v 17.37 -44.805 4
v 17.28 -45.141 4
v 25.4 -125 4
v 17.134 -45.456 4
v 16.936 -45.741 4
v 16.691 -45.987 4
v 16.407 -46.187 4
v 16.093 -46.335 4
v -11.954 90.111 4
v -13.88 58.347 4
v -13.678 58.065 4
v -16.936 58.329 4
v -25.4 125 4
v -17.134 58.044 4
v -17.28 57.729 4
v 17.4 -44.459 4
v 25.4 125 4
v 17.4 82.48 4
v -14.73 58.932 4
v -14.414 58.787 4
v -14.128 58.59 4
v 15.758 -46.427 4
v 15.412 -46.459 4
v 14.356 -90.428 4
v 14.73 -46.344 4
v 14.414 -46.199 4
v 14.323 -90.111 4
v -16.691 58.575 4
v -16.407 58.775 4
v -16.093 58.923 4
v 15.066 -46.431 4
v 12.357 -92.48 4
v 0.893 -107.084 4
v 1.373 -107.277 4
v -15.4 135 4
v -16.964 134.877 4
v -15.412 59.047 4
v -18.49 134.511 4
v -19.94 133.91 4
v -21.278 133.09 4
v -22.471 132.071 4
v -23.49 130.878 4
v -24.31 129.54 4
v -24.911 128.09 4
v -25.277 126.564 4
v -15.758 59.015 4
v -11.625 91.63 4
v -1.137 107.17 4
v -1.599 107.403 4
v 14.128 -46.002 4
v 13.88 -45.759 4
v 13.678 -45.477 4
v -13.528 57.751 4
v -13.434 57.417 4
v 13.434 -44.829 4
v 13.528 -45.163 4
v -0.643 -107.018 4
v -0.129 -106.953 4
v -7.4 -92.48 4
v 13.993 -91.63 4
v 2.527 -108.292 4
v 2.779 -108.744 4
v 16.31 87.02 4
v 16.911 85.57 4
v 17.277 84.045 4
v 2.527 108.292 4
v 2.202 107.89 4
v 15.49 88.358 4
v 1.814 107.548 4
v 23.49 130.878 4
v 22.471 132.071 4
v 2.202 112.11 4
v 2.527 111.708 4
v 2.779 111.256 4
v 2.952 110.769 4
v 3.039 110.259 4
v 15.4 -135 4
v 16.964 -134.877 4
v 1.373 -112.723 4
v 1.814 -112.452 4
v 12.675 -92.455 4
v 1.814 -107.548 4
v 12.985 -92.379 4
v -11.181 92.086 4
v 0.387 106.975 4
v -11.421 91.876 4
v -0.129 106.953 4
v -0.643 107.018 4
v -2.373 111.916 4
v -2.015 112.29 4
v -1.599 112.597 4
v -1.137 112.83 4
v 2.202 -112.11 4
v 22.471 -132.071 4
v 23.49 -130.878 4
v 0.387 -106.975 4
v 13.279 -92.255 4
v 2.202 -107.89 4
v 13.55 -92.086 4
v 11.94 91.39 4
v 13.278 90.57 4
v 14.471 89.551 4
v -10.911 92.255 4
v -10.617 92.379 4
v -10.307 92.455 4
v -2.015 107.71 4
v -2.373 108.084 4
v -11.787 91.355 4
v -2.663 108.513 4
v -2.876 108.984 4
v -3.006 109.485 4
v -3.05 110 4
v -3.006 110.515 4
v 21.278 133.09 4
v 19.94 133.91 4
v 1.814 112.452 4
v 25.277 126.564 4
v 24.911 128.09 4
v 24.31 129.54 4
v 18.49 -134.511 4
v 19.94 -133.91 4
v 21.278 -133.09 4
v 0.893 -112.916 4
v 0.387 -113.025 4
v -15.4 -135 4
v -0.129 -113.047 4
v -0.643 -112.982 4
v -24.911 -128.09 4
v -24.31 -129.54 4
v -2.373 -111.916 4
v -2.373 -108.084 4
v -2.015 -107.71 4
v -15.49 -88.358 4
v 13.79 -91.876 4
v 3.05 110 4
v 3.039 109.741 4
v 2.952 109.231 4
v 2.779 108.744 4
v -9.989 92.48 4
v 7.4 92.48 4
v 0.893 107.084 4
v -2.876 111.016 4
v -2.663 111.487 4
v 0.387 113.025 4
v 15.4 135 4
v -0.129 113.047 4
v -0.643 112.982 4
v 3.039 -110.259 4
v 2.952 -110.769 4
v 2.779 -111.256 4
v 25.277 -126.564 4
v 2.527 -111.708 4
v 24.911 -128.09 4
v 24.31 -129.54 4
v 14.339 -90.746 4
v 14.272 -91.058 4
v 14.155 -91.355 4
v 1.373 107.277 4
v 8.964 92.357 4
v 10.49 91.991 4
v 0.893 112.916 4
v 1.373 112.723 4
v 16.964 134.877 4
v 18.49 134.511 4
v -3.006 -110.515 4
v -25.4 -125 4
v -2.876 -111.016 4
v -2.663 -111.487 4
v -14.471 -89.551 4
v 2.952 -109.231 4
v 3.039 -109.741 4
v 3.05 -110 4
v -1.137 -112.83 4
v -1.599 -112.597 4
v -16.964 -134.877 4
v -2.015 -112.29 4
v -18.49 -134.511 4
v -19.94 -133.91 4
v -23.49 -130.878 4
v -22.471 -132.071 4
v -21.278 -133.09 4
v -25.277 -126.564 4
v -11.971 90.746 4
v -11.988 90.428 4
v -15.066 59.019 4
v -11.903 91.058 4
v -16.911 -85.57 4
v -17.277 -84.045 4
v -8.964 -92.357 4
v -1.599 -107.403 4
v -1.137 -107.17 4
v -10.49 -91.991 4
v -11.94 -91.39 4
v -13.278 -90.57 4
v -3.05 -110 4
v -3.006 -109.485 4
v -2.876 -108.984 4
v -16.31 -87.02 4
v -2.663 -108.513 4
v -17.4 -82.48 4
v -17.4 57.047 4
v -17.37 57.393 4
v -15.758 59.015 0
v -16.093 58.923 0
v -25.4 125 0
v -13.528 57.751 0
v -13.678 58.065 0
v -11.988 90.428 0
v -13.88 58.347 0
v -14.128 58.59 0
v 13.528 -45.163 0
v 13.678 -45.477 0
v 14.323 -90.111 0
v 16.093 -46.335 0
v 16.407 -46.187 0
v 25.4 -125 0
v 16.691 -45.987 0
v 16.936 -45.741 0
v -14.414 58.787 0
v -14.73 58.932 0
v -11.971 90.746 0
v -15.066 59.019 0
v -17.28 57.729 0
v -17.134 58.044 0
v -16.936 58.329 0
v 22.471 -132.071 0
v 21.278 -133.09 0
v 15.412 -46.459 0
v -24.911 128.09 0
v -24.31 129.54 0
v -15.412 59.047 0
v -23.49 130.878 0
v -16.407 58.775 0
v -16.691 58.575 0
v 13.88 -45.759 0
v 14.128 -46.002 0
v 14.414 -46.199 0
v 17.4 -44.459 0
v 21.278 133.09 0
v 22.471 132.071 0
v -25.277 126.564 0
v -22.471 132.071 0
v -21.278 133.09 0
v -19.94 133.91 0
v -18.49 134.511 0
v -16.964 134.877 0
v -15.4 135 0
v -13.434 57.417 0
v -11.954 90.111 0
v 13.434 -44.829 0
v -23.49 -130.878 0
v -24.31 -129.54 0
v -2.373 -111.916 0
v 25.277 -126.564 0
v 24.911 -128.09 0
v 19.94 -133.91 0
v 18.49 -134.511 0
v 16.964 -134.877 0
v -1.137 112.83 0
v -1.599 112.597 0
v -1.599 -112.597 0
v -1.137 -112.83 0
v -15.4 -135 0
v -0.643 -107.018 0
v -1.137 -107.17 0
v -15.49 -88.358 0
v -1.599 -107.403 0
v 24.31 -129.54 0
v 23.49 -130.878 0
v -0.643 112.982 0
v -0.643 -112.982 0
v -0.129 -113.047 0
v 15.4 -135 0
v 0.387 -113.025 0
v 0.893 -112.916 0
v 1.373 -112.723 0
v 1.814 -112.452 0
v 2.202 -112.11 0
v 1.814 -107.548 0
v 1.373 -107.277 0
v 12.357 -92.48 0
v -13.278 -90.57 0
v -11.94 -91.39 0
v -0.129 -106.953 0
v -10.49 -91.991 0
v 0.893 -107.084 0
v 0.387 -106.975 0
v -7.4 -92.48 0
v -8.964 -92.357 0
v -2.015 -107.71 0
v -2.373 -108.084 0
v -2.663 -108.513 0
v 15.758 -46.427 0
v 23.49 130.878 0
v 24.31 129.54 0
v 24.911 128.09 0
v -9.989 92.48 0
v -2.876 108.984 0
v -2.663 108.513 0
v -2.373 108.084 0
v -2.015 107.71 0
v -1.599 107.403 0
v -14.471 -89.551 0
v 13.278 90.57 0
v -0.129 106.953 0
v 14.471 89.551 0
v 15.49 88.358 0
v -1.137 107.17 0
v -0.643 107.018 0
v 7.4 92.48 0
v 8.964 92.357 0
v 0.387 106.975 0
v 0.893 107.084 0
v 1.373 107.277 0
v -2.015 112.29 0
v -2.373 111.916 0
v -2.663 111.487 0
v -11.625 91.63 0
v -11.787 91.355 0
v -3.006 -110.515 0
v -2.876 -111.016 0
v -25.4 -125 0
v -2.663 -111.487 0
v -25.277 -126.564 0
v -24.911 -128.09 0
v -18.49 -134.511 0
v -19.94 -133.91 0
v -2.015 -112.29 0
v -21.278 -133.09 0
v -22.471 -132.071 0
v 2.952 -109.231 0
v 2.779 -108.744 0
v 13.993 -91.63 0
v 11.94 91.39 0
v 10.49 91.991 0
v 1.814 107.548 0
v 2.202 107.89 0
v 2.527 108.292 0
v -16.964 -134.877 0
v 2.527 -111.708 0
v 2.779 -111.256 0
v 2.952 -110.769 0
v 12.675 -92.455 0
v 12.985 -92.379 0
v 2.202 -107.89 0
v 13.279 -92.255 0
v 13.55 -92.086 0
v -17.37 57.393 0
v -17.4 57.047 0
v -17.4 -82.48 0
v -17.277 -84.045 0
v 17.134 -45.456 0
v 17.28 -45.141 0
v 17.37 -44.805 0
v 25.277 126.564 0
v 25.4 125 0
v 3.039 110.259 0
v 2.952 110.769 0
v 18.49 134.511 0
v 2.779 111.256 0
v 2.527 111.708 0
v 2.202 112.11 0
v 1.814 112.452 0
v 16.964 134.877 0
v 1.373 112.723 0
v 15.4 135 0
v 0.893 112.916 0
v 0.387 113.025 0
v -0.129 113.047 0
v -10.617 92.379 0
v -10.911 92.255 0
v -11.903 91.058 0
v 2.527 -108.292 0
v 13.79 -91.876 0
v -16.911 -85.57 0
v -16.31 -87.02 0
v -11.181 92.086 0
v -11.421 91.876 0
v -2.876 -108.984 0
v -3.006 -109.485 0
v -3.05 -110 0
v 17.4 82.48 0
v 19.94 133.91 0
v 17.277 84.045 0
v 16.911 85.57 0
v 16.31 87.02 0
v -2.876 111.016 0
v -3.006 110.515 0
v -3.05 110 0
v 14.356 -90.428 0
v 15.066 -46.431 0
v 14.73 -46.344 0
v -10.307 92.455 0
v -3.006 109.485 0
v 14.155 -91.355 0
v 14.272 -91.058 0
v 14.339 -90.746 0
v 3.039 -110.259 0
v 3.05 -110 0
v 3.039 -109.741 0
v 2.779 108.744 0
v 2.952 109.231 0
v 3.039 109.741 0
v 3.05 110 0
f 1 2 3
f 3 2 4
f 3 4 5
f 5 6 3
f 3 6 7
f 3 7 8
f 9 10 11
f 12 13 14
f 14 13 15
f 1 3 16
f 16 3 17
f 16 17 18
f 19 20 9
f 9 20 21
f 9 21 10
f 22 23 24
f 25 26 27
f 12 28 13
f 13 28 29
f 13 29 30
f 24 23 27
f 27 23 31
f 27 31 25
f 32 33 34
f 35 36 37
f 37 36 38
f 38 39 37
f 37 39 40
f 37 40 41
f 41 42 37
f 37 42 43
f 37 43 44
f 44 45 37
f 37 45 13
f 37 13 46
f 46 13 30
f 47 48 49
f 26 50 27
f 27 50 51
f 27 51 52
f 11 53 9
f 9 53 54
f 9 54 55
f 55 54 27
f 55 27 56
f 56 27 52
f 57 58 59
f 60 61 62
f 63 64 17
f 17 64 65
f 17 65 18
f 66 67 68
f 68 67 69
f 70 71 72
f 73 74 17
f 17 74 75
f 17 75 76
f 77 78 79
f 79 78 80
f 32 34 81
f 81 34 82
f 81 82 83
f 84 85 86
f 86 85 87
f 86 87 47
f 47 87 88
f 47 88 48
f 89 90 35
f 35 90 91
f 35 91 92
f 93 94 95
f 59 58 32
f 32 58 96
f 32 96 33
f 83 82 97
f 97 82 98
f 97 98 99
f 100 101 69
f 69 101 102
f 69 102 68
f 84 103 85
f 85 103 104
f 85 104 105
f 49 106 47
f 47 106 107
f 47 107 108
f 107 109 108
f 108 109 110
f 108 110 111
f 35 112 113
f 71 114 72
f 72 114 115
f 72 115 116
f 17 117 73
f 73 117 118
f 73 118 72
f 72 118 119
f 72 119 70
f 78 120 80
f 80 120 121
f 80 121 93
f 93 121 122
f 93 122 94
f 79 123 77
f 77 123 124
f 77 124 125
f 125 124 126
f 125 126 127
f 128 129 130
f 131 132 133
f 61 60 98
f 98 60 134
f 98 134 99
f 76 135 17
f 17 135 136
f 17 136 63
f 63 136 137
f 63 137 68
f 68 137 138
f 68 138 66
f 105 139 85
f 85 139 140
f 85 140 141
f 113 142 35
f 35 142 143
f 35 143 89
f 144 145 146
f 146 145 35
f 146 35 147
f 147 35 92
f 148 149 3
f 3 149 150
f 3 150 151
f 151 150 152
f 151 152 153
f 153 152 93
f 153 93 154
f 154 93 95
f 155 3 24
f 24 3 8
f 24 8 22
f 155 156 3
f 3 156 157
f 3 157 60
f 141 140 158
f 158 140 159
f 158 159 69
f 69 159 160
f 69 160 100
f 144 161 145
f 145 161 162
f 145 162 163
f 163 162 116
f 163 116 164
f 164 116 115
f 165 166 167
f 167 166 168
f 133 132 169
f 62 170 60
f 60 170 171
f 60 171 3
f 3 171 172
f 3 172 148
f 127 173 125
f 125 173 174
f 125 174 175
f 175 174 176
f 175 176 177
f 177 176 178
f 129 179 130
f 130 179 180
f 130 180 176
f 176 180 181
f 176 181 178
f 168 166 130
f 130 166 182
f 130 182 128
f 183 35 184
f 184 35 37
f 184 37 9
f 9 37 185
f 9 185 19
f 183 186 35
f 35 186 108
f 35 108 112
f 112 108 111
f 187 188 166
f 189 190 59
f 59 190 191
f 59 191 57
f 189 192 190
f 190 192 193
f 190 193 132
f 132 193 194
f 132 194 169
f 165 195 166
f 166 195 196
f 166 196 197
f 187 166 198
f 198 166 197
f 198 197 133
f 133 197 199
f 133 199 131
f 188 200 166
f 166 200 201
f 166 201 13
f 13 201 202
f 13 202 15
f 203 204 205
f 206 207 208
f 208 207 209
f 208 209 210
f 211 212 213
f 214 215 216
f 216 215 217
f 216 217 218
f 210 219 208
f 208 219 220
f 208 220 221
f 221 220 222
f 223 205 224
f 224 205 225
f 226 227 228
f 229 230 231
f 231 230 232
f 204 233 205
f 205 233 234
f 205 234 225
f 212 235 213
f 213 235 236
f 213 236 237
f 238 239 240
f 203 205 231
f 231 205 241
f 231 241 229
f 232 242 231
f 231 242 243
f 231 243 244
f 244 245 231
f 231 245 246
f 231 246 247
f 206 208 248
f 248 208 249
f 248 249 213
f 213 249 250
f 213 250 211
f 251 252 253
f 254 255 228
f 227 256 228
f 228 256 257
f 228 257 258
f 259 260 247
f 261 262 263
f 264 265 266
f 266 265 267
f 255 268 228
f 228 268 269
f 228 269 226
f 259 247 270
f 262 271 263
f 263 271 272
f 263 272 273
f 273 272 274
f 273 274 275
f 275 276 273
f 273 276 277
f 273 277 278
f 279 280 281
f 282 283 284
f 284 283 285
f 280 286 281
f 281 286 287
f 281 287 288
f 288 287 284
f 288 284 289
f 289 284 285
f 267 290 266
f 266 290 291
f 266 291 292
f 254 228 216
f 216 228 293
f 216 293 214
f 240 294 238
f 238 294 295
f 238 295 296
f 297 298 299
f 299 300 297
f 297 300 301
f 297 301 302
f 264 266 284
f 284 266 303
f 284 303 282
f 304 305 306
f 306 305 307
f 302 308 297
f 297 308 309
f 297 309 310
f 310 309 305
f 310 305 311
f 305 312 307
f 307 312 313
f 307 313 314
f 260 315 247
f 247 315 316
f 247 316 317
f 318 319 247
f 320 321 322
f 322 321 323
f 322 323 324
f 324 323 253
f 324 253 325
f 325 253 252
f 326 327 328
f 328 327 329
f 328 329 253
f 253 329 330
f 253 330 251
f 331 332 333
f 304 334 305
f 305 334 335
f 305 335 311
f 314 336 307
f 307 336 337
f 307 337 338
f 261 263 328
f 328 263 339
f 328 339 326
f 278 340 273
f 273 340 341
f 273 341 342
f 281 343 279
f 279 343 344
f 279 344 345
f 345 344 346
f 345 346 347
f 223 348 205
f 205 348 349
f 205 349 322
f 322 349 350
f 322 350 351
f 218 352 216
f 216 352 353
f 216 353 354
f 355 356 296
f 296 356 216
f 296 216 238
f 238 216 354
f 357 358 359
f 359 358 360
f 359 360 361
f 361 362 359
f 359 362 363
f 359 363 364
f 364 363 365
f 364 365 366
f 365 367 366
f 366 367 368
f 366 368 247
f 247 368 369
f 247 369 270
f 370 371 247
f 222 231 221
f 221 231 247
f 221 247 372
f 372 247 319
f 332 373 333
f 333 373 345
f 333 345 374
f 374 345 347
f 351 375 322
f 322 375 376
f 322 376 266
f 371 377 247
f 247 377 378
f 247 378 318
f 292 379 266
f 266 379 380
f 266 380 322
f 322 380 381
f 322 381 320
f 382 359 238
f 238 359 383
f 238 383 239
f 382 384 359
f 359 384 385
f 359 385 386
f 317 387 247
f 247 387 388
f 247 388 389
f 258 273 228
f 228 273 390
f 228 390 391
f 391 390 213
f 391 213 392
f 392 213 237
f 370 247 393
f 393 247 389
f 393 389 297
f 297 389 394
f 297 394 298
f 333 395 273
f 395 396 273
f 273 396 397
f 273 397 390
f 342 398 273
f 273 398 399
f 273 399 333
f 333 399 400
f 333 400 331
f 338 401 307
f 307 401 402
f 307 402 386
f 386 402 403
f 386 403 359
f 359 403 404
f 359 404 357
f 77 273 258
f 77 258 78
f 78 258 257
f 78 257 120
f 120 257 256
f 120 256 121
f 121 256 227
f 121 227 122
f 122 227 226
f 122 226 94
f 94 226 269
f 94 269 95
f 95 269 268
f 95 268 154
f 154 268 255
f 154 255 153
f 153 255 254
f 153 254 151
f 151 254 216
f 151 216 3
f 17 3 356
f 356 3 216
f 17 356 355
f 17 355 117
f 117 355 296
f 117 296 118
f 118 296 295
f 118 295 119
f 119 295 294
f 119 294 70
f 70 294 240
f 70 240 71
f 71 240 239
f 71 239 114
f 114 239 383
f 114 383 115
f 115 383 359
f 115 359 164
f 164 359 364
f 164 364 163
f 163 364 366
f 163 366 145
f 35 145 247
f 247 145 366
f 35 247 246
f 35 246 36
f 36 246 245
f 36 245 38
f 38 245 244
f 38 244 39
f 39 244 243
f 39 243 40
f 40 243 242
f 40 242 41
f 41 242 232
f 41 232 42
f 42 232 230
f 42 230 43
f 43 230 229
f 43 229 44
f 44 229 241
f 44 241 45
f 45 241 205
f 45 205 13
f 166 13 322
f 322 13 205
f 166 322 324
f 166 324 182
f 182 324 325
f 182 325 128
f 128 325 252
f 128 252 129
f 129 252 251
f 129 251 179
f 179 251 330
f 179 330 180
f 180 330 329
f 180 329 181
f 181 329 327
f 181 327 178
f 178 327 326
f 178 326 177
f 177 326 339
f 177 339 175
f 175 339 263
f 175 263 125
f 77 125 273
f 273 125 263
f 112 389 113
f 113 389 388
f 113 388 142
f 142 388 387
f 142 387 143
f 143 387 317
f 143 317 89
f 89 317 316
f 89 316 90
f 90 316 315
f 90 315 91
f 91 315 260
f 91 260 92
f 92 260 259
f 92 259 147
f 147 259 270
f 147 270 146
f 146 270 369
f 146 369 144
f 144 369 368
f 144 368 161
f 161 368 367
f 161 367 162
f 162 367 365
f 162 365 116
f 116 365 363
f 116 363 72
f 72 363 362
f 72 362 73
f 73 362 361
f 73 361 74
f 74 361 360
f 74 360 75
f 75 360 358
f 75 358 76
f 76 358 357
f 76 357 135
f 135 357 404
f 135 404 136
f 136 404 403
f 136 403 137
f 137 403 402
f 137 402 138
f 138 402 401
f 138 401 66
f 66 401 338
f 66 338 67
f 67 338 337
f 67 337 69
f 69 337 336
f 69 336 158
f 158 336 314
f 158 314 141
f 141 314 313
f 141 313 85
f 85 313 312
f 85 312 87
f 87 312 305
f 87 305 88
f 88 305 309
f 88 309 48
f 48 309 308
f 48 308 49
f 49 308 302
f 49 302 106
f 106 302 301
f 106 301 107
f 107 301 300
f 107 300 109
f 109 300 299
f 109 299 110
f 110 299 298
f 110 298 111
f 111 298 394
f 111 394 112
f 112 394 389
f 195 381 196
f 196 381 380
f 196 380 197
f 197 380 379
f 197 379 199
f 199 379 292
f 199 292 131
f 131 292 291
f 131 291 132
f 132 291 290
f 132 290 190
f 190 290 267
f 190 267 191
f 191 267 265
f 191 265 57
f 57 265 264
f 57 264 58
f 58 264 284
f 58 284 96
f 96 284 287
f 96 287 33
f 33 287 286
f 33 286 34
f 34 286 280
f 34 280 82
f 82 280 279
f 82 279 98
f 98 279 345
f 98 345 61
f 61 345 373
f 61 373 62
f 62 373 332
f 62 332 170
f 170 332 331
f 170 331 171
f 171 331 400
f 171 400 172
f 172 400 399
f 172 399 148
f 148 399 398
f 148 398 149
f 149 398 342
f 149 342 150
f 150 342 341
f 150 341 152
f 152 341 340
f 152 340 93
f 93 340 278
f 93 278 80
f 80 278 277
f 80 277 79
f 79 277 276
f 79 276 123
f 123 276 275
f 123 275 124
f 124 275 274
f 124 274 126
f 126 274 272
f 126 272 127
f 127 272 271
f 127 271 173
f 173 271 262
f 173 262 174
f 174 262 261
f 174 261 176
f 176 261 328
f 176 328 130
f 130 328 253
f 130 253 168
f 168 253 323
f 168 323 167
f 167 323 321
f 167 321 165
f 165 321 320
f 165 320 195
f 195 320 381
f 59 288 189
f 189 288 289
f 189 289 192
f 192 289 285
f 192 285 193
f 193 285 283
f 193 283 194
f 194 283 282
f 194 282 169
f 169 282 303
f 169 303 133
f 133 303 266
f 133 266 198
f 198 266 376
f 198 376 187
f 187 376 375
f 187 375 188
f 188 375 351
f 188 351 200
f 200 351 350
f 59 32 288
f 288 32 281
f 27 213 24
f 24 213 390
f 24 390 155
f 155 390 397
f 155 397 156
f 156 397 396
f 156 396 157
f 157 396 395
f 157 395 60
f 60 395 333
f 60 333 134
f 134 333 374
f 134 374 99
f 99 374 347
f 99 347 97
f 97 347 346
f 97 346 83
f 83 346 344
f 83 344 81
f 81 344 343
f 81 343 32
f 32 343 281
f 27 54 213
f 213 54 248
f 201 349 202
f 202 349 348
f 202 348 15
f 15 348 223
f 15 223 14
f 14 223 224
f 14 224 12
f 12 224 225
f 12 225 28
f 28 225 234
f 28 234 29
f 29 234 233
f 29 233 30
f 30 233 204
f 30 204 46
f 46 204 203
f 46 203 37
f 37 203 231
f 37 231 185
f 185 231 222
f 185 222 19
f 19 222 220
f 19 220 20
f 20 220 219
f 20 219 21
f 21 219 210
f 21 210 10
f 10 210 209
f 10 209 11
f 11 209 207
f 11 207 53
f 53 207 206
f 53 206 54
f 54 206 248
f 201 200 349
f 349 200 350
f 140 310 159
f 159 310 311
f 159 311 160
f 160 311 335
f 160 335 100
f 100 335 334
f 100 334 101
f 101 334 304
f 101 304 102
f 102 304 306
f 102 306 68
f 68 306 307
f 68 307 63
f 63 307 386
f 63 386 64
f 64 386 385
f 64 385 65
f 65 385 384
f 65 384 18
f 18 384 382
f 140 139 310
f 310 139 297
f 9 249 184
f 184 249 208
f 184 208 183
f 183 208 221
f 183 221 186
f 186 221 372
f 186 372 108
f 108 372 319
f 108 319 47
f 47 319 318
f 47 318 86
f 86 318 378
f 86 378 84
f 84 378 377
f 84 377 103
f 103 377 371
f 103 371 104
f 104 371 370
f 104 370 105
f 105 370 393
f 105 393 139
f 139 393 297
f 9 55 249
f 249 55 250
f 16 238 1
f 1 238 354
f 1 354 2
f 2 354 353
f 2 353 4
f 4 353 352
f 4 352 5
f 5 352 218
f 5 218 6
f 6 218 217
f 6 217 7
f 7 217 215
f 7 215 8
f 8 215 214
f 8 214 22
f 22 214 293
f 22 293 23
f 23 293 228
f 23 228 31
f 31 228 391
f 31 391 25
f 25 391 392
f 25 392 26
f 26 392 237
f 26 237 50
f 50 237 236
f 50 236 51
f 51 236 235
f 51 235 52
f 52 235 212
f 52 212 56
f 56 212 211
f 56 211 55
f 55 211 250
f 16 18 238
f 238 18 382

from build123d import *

# Parameters (mm, degrees)
SKETCH1_R           = 3.05
BOSS_EXTRUDE1_DEPTH = 4


with BuildPart() as part:
    # Sketch1 → Boss-Extrude1 (new body)
    with BuildSketch(Plane.XY):
        with BuildLine():
            Line((15.4, -135), (-15.4, -135))
            ThreePointArc((-15.4, -135), (-22.471067812, -132.071067812), (-25.4, -125))
            Line((-25.4, -125), (-25.4, 125))
            ThreePointArc((-25.4, 125), (-22.471067812, 132.071067812), (-15.4, 135))
            Line((-15.4, 135), (15.4, 135))
            ThreePointArc((15.4, 135), (22.471067812, 132.071067812), (25.4, 125))
            Line((25.4, 125), (25.4, -125))
            ThreePointArc((25.4, -125), (22.471067812, -132.071067812), (15.4, -135))
        make_face()
        with Locations((0, 110)):
            Circle(SKETCH1_R, mode=Mode.SUBTRACT)
        with Locations((0, -110)):
            Circle(SKETCH1_R, mode=Mode.SUBTRACT)
        with BuildLine():
            Line((-13.434486763, 57.416947085), (14.322530577, -90.110507285))
            ThreePointArc((14.322530577, -90.110507285), (13.896435307, -91.757104812), (12.357017341, -92.480314961))
            Line((12.357017341, -92.480314961), (-7.4, -92.480314961))
            ThreePointArc((-7.4, -92.480314961), (-14.471067812, -89.551382772), (-17.4, -82.480314961))
            Line((-17.4, -82.480314961), (-17.4, 57.047139409))
            ThreePointArc((-17.4, 57.047139409), (-15.585706121, 59.038499055), (-13.434486763, 57.416947085))
        make_face(mode=Mode.SUBTRACT)
        with BuildLine():
            Line((17.4, -44.459157406), (17.4, 82.480314961))
            ThreePointArc((17.4, 82.480314961), (14.471067812, 89.551382772), (7.4, 92.480314961))
            Line((7.4, 92.480314961), (-9.988611838, 92.480314961))
            ThreePointArc((-9.988611838, 92.480314961), (-11.528029804, 91.757104812), (-11.954125074, 90.110507285))
            Line((-11.954125074, 90.110507285), (13.434486763, -44.828965081))
            ThreePointArc((13.434486763, -44.828965081), (15.585706121, -46.450517051), (17.4, -44.459157406))
        make_face(mode=Mode.SUBTRACT)
    extrude(amount=BOSS_EXTRUDE1_DEPTH)


solid = part.part
